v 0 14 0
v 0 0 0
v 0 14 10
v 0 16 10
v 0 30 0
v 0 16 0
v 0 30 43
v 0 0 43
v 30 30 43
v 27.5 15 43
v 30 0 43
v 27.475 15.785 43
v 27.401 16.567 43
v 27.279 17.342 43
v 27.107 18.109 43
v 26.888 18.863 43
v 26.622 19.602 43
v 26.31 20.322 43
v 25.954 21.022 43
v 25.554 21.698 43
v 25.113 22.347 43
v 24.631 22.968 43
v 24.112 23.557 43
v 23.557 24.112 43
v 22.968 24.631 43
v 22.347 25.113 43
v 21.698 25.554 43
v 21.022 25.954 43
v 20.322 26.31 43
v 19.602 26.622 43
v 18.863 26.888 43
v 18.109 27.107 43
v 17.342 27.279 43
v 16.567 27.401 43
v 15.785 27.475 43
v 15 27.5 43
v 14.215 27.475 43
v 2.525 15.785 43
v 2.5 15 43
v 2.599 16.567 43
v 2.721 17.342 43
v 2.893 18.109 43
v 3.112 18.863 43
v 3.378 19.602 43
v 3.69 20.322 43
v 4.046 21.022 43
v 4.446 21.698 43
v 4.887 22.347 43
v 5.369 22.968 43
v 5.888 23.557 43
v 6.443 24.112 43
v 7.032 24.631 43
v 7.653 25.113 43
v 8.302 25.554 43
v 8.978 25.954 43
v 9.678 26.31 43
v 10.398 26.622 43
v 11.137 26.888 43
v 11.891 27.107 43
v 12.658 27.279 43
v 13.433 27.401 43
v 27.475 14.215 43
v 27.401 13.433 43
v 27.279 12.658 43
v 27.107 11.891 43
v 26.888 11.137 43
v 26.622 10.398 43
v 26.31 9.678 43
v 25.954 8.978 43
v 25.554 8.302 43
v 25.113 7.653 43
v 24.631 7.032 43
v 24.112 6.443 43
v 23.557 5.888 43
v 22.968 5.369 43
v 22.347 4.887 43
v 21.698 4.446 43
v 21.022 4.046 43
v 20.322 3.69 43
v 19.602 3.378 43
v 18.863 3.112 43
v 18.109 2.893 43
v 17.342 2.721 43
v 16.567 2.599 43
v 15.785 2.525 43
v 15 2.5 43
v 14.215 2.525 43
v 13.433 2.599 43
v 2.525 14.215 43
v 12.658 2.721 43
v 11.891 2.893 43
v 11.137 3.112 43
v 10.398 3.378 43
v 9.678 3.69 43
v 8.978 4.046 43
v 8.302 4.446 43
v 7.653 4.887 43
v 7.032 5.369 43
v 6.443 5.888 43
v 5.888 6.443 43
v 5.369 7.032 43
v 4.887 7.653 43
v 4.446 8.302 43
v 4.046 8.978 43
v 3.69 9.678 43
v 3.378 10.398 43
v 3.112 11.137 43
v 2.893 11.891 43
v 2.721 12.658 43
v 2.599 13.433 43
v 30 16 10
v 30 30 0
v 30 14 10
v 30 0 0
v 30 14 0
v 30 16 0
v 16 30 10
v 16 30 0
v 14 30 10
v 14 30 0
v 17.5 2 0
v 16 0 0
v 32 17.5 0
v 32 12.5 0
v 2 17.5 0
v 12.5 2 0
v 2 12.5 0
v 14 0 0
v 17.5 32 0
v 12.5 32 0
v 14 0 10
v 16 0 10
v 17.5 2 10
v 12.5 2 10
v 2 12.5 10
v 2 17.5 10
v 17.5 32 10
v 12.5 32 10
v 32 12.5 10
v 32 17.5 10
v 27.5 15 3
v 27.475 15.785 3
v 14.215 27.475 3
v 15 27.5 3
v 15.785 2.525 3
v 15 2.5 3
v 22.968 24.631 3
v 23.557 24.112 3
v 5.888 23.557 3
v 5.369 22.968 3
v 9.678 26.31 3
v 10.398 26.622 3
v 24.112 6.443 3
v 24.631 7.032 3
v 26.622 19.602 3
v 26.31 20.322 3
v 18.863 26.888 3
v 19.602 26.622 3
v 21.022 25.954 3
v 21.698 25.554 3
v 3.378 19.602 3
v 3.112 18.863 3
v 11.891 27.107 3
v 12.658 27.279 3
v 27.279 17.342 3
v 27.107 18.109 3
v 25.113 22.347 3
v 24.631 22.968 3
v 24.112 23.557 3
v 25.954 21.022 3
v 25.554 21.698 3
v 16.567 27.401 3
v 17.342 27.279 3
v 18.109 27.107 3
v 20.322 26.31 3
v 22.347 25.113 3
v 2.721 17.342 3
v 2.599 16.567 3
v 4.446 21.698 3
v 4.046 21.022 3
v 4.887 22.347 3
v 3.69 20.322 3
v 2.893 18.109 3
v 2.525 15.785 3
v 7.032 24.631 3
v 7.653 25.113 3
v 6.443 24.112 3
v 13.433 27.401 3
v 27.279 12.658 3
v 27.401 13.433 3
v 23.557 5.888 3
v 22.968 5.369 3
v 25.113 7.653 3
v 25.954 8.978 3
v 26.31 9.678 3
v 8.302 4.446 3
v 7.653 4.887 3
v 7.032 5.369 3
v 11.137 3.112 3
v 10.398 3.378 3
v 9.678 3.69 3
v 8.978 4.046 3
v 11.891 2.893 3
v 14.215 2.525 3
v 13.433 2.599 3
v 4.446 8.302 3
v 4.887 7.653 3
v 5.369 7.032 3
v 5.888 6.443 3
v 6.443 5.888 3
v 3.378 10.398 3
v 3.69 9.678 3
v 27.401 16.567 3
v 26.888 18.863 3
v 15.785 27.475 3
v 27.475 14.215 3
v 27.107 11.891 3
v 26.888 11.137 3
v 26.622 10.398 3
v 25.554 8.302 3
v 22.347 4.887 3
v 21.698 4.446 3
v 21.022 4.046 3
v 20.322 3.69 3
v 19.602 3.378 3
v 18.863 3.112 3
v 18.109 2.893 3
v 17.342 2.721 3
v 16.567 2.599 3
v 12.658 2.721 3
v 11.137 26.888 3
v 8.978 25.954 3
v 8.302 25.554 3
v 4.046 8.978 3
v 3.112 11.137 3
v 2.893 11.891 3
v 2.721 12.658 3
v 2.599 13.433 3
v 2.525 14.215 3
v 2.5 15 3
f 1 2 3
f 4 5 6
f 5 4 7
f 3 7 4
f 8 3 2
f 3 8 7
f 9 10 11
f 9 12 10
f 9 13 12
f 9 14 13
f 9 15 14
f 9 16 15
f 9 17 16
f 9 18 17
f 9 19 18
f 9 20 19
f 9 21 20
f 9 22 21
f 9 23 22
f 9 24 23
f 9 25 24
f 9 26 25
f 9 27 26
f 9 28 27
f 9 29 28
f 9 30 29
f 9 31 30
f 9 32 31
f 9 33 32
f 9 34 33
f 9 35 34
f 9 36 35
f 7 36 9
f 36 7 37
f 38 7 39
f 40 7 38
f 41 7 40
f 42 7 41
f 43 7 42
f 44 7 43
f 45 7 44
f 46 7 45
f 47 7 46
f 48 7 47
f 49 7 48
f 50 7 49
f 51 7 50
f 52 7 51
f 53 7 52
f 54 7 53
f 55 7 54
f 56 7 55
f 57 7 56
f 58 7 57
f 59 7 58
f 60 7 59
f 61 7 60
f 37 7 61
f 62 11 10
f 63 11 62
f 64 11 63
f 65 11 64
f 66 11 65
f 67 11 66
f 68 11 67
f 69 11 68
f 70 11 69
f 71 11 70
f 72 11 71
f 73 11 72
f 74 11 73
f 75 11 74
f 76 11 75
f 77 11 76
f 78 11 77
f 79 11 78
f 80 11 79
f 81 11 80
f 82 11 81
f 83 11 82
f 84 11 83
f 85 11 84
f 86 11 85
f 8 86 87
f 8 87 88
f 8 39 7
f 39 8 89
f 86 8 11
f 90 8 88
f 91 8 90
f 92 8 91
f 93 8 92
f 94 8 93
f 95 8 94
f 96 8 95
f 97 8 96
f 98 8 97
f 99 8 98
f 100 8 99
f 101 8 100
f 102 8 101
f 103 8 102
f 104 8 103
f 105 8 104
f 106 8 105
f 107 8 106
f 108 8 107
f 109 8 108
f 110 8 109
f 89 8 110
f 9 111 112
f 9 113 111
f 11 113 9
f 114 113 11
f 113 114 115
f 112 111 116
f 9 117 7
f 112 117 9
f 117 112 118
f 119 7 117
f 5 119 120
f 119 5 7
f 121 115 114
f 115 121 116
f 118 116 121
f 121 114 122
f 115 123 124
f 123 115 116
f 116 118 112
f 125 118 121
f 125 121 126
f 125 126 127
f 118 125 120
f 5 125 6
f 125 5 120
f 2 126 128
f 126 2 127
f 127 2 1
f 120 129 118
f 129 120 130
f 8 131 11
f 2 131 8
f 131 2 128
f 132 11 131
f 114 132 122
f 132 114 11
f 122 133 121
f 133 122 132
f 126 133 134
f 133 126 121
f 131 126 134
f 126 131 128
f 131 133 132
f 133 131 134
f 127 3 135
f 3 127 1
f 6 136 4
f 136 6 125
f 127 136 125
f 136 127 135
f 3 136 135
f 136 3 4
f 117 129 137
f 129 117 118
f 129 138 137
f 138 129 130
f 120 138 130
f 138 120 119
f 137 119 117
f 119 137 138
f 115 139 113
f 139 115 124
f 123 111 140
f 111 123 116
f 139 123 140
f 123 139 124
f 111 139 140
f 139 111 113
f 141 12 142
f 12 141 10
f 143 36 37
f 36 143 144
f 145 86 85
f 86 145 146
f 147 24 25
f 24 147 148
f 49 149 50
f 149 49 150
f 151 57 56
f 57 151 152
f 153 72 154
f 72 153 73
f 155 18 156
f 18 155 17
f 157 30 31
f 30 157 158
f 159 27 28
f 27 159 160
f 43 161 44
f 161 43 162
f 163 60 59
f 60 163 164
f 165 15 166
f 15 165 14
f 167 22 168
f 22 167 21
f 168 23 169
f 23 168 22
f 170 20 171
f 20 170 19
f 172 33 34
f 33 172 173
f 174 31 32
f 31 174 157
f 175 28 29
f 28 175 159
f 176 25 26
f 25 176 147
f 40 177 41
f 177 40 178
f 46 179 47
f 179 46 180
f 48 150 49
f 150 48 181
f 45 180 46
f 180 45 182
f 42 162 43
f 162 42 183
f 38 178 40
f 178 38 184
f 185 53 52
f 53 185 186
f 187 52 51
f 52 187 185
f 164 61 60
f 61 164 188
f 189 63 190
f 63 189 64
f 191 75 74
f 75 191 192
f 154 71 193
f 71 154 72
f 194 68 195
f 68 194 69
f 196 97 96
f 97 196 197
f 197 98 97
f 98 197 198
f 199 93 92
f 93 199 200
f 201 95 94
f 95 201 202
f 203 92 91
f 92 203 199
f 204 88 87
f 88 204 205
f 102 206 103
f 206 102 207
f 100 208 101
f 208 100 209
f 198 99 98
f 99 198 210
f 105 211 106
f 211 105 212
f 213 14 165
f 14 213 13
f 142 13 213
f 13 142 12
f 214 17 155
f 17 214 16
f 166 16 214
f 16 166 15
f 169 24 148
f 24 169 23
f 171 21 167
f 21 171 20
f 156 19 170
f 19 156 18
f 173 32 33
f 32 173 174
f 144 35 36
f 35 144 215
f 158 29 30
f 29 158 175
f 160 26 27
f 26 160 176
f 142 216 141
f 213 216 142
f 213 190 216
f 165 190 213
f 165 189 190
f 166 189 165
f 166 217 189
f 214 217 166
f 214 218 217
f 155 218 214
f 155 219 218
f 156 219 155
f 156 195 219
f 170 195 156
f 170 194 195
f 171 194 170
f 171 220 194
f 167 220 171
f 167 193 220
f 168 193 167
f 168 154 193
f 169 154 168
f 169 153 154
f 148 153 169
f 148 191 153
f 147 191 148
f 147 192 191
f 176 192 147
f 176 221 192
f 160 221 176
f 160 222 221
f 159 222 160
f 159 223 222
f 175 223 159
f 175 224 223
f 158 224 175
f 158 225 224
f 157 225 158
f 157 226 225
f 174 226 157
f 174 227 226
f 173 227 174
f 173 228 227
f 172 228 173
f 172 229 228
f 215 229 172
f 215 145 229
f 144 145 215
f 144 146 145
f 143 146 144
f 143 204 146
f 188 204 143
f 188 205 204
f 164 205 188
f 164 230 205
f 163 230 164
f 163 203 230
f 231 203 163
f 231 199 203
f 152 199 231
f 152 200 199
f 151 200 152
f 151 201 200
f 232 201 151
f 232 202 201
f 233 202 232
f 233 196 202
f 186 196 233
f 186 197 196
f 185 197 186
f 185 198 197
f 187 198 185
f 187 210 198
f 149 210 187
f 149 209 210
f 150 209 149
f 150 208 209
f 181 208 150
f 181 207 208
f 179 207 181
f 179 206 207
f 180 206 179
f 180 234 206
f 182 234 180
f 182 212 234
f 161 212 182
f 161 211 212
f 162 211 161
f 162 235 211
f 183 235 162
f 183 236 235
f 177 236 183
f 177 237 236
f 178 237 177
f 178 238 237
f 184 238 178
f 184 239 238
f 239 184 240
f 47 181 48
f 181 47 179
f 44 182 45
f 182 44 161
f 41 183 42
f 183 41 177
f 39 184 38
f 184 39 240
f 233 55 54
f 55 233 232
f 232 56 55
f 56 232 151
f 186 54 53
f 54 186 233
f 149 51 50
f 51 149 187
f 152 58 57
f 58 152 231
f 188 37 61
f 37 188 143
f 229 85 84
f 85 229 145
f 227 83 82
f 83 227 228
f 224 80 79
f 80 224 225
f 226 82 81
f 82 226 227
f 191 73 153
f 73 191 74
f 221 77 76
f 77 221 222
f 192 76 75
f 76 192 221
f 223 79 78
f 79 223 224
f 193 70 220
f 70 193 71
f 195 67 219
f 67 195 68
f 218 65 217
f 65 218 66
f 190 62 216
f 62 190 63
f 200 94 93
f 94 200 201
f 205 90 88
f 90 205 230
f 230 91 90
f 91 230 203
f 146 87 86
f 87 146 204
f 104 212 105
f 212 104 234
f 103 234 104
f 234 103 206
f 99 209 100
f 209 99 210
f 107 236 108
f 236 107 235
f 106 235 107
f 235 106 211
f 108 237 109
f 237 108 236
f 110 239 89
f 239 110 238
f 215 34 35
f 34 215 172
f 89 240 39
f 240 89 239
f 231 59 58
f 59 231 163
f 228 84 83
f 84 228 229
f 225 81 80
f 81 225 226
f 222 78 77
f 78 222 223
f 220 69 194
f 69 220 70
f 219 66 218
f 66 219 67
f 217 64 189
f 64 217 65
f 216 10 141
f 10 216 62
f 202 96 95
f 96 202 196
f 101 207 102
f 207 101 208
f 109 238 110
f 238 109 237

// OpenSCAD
// file: solder_stuff_station.scad
$fn = 100;

block_side_length = 30;

module connector() {
     linear_extrude(10) {
          polygon([[0, 0], [5, 0], [3.5, 2], [1.5, 2]]);
     }
}

module Block(width_scale=1, length_scale=1, height=10) {
     difference() {     
          cube([width_scale * block_side_length, length_scale * block_side_length, height]);

          // Groove X
          for(pos = [1:width_scale]) {
               translate([((pos - 1) * block_side_length) + 17.5, 2, 0]) rotate([0, 0, 180]) connector();
          }

          // Groove Y
          for(pos = [1:length_scale]) {
               translate([2, ((pos - 1) * block_side_length) + 12.5, 0]) rotate([0, 0, 90]) connector();
          }
     }
     
     // Tounge X
     for(pos = [1:width_scale]) {
          translate([((pos - 1) * block_side_length) + 17.5,
                     block_side_length * length_scale + 2, 0]) rotate([0, 0, 180]) connector();
     }

     // Tounge Y
     for(pos = [1:length_scale]) {
          translate([block_side_length * width_scale + 2,
                     ((pos - 1) * block_side_length) + 12.5, 0]) rotate([0, 0, 90]) connector();
     }
}

module GreatBlock() {
     Block(2, 2);
}

// GreatBlock(1, 1);
//Block(3,2);
// main file
include <solder_stuff_station.scad>;

module PumpHolder(pump_height=40, pump_width=25) {
     difference() {
          Block(height=pump_height + 3);
          translate([block_side_length/2, block_side_length/2, 3]) cylinder(h=pump_height, d=pump_width);
     }    
}

PumpHolder();
